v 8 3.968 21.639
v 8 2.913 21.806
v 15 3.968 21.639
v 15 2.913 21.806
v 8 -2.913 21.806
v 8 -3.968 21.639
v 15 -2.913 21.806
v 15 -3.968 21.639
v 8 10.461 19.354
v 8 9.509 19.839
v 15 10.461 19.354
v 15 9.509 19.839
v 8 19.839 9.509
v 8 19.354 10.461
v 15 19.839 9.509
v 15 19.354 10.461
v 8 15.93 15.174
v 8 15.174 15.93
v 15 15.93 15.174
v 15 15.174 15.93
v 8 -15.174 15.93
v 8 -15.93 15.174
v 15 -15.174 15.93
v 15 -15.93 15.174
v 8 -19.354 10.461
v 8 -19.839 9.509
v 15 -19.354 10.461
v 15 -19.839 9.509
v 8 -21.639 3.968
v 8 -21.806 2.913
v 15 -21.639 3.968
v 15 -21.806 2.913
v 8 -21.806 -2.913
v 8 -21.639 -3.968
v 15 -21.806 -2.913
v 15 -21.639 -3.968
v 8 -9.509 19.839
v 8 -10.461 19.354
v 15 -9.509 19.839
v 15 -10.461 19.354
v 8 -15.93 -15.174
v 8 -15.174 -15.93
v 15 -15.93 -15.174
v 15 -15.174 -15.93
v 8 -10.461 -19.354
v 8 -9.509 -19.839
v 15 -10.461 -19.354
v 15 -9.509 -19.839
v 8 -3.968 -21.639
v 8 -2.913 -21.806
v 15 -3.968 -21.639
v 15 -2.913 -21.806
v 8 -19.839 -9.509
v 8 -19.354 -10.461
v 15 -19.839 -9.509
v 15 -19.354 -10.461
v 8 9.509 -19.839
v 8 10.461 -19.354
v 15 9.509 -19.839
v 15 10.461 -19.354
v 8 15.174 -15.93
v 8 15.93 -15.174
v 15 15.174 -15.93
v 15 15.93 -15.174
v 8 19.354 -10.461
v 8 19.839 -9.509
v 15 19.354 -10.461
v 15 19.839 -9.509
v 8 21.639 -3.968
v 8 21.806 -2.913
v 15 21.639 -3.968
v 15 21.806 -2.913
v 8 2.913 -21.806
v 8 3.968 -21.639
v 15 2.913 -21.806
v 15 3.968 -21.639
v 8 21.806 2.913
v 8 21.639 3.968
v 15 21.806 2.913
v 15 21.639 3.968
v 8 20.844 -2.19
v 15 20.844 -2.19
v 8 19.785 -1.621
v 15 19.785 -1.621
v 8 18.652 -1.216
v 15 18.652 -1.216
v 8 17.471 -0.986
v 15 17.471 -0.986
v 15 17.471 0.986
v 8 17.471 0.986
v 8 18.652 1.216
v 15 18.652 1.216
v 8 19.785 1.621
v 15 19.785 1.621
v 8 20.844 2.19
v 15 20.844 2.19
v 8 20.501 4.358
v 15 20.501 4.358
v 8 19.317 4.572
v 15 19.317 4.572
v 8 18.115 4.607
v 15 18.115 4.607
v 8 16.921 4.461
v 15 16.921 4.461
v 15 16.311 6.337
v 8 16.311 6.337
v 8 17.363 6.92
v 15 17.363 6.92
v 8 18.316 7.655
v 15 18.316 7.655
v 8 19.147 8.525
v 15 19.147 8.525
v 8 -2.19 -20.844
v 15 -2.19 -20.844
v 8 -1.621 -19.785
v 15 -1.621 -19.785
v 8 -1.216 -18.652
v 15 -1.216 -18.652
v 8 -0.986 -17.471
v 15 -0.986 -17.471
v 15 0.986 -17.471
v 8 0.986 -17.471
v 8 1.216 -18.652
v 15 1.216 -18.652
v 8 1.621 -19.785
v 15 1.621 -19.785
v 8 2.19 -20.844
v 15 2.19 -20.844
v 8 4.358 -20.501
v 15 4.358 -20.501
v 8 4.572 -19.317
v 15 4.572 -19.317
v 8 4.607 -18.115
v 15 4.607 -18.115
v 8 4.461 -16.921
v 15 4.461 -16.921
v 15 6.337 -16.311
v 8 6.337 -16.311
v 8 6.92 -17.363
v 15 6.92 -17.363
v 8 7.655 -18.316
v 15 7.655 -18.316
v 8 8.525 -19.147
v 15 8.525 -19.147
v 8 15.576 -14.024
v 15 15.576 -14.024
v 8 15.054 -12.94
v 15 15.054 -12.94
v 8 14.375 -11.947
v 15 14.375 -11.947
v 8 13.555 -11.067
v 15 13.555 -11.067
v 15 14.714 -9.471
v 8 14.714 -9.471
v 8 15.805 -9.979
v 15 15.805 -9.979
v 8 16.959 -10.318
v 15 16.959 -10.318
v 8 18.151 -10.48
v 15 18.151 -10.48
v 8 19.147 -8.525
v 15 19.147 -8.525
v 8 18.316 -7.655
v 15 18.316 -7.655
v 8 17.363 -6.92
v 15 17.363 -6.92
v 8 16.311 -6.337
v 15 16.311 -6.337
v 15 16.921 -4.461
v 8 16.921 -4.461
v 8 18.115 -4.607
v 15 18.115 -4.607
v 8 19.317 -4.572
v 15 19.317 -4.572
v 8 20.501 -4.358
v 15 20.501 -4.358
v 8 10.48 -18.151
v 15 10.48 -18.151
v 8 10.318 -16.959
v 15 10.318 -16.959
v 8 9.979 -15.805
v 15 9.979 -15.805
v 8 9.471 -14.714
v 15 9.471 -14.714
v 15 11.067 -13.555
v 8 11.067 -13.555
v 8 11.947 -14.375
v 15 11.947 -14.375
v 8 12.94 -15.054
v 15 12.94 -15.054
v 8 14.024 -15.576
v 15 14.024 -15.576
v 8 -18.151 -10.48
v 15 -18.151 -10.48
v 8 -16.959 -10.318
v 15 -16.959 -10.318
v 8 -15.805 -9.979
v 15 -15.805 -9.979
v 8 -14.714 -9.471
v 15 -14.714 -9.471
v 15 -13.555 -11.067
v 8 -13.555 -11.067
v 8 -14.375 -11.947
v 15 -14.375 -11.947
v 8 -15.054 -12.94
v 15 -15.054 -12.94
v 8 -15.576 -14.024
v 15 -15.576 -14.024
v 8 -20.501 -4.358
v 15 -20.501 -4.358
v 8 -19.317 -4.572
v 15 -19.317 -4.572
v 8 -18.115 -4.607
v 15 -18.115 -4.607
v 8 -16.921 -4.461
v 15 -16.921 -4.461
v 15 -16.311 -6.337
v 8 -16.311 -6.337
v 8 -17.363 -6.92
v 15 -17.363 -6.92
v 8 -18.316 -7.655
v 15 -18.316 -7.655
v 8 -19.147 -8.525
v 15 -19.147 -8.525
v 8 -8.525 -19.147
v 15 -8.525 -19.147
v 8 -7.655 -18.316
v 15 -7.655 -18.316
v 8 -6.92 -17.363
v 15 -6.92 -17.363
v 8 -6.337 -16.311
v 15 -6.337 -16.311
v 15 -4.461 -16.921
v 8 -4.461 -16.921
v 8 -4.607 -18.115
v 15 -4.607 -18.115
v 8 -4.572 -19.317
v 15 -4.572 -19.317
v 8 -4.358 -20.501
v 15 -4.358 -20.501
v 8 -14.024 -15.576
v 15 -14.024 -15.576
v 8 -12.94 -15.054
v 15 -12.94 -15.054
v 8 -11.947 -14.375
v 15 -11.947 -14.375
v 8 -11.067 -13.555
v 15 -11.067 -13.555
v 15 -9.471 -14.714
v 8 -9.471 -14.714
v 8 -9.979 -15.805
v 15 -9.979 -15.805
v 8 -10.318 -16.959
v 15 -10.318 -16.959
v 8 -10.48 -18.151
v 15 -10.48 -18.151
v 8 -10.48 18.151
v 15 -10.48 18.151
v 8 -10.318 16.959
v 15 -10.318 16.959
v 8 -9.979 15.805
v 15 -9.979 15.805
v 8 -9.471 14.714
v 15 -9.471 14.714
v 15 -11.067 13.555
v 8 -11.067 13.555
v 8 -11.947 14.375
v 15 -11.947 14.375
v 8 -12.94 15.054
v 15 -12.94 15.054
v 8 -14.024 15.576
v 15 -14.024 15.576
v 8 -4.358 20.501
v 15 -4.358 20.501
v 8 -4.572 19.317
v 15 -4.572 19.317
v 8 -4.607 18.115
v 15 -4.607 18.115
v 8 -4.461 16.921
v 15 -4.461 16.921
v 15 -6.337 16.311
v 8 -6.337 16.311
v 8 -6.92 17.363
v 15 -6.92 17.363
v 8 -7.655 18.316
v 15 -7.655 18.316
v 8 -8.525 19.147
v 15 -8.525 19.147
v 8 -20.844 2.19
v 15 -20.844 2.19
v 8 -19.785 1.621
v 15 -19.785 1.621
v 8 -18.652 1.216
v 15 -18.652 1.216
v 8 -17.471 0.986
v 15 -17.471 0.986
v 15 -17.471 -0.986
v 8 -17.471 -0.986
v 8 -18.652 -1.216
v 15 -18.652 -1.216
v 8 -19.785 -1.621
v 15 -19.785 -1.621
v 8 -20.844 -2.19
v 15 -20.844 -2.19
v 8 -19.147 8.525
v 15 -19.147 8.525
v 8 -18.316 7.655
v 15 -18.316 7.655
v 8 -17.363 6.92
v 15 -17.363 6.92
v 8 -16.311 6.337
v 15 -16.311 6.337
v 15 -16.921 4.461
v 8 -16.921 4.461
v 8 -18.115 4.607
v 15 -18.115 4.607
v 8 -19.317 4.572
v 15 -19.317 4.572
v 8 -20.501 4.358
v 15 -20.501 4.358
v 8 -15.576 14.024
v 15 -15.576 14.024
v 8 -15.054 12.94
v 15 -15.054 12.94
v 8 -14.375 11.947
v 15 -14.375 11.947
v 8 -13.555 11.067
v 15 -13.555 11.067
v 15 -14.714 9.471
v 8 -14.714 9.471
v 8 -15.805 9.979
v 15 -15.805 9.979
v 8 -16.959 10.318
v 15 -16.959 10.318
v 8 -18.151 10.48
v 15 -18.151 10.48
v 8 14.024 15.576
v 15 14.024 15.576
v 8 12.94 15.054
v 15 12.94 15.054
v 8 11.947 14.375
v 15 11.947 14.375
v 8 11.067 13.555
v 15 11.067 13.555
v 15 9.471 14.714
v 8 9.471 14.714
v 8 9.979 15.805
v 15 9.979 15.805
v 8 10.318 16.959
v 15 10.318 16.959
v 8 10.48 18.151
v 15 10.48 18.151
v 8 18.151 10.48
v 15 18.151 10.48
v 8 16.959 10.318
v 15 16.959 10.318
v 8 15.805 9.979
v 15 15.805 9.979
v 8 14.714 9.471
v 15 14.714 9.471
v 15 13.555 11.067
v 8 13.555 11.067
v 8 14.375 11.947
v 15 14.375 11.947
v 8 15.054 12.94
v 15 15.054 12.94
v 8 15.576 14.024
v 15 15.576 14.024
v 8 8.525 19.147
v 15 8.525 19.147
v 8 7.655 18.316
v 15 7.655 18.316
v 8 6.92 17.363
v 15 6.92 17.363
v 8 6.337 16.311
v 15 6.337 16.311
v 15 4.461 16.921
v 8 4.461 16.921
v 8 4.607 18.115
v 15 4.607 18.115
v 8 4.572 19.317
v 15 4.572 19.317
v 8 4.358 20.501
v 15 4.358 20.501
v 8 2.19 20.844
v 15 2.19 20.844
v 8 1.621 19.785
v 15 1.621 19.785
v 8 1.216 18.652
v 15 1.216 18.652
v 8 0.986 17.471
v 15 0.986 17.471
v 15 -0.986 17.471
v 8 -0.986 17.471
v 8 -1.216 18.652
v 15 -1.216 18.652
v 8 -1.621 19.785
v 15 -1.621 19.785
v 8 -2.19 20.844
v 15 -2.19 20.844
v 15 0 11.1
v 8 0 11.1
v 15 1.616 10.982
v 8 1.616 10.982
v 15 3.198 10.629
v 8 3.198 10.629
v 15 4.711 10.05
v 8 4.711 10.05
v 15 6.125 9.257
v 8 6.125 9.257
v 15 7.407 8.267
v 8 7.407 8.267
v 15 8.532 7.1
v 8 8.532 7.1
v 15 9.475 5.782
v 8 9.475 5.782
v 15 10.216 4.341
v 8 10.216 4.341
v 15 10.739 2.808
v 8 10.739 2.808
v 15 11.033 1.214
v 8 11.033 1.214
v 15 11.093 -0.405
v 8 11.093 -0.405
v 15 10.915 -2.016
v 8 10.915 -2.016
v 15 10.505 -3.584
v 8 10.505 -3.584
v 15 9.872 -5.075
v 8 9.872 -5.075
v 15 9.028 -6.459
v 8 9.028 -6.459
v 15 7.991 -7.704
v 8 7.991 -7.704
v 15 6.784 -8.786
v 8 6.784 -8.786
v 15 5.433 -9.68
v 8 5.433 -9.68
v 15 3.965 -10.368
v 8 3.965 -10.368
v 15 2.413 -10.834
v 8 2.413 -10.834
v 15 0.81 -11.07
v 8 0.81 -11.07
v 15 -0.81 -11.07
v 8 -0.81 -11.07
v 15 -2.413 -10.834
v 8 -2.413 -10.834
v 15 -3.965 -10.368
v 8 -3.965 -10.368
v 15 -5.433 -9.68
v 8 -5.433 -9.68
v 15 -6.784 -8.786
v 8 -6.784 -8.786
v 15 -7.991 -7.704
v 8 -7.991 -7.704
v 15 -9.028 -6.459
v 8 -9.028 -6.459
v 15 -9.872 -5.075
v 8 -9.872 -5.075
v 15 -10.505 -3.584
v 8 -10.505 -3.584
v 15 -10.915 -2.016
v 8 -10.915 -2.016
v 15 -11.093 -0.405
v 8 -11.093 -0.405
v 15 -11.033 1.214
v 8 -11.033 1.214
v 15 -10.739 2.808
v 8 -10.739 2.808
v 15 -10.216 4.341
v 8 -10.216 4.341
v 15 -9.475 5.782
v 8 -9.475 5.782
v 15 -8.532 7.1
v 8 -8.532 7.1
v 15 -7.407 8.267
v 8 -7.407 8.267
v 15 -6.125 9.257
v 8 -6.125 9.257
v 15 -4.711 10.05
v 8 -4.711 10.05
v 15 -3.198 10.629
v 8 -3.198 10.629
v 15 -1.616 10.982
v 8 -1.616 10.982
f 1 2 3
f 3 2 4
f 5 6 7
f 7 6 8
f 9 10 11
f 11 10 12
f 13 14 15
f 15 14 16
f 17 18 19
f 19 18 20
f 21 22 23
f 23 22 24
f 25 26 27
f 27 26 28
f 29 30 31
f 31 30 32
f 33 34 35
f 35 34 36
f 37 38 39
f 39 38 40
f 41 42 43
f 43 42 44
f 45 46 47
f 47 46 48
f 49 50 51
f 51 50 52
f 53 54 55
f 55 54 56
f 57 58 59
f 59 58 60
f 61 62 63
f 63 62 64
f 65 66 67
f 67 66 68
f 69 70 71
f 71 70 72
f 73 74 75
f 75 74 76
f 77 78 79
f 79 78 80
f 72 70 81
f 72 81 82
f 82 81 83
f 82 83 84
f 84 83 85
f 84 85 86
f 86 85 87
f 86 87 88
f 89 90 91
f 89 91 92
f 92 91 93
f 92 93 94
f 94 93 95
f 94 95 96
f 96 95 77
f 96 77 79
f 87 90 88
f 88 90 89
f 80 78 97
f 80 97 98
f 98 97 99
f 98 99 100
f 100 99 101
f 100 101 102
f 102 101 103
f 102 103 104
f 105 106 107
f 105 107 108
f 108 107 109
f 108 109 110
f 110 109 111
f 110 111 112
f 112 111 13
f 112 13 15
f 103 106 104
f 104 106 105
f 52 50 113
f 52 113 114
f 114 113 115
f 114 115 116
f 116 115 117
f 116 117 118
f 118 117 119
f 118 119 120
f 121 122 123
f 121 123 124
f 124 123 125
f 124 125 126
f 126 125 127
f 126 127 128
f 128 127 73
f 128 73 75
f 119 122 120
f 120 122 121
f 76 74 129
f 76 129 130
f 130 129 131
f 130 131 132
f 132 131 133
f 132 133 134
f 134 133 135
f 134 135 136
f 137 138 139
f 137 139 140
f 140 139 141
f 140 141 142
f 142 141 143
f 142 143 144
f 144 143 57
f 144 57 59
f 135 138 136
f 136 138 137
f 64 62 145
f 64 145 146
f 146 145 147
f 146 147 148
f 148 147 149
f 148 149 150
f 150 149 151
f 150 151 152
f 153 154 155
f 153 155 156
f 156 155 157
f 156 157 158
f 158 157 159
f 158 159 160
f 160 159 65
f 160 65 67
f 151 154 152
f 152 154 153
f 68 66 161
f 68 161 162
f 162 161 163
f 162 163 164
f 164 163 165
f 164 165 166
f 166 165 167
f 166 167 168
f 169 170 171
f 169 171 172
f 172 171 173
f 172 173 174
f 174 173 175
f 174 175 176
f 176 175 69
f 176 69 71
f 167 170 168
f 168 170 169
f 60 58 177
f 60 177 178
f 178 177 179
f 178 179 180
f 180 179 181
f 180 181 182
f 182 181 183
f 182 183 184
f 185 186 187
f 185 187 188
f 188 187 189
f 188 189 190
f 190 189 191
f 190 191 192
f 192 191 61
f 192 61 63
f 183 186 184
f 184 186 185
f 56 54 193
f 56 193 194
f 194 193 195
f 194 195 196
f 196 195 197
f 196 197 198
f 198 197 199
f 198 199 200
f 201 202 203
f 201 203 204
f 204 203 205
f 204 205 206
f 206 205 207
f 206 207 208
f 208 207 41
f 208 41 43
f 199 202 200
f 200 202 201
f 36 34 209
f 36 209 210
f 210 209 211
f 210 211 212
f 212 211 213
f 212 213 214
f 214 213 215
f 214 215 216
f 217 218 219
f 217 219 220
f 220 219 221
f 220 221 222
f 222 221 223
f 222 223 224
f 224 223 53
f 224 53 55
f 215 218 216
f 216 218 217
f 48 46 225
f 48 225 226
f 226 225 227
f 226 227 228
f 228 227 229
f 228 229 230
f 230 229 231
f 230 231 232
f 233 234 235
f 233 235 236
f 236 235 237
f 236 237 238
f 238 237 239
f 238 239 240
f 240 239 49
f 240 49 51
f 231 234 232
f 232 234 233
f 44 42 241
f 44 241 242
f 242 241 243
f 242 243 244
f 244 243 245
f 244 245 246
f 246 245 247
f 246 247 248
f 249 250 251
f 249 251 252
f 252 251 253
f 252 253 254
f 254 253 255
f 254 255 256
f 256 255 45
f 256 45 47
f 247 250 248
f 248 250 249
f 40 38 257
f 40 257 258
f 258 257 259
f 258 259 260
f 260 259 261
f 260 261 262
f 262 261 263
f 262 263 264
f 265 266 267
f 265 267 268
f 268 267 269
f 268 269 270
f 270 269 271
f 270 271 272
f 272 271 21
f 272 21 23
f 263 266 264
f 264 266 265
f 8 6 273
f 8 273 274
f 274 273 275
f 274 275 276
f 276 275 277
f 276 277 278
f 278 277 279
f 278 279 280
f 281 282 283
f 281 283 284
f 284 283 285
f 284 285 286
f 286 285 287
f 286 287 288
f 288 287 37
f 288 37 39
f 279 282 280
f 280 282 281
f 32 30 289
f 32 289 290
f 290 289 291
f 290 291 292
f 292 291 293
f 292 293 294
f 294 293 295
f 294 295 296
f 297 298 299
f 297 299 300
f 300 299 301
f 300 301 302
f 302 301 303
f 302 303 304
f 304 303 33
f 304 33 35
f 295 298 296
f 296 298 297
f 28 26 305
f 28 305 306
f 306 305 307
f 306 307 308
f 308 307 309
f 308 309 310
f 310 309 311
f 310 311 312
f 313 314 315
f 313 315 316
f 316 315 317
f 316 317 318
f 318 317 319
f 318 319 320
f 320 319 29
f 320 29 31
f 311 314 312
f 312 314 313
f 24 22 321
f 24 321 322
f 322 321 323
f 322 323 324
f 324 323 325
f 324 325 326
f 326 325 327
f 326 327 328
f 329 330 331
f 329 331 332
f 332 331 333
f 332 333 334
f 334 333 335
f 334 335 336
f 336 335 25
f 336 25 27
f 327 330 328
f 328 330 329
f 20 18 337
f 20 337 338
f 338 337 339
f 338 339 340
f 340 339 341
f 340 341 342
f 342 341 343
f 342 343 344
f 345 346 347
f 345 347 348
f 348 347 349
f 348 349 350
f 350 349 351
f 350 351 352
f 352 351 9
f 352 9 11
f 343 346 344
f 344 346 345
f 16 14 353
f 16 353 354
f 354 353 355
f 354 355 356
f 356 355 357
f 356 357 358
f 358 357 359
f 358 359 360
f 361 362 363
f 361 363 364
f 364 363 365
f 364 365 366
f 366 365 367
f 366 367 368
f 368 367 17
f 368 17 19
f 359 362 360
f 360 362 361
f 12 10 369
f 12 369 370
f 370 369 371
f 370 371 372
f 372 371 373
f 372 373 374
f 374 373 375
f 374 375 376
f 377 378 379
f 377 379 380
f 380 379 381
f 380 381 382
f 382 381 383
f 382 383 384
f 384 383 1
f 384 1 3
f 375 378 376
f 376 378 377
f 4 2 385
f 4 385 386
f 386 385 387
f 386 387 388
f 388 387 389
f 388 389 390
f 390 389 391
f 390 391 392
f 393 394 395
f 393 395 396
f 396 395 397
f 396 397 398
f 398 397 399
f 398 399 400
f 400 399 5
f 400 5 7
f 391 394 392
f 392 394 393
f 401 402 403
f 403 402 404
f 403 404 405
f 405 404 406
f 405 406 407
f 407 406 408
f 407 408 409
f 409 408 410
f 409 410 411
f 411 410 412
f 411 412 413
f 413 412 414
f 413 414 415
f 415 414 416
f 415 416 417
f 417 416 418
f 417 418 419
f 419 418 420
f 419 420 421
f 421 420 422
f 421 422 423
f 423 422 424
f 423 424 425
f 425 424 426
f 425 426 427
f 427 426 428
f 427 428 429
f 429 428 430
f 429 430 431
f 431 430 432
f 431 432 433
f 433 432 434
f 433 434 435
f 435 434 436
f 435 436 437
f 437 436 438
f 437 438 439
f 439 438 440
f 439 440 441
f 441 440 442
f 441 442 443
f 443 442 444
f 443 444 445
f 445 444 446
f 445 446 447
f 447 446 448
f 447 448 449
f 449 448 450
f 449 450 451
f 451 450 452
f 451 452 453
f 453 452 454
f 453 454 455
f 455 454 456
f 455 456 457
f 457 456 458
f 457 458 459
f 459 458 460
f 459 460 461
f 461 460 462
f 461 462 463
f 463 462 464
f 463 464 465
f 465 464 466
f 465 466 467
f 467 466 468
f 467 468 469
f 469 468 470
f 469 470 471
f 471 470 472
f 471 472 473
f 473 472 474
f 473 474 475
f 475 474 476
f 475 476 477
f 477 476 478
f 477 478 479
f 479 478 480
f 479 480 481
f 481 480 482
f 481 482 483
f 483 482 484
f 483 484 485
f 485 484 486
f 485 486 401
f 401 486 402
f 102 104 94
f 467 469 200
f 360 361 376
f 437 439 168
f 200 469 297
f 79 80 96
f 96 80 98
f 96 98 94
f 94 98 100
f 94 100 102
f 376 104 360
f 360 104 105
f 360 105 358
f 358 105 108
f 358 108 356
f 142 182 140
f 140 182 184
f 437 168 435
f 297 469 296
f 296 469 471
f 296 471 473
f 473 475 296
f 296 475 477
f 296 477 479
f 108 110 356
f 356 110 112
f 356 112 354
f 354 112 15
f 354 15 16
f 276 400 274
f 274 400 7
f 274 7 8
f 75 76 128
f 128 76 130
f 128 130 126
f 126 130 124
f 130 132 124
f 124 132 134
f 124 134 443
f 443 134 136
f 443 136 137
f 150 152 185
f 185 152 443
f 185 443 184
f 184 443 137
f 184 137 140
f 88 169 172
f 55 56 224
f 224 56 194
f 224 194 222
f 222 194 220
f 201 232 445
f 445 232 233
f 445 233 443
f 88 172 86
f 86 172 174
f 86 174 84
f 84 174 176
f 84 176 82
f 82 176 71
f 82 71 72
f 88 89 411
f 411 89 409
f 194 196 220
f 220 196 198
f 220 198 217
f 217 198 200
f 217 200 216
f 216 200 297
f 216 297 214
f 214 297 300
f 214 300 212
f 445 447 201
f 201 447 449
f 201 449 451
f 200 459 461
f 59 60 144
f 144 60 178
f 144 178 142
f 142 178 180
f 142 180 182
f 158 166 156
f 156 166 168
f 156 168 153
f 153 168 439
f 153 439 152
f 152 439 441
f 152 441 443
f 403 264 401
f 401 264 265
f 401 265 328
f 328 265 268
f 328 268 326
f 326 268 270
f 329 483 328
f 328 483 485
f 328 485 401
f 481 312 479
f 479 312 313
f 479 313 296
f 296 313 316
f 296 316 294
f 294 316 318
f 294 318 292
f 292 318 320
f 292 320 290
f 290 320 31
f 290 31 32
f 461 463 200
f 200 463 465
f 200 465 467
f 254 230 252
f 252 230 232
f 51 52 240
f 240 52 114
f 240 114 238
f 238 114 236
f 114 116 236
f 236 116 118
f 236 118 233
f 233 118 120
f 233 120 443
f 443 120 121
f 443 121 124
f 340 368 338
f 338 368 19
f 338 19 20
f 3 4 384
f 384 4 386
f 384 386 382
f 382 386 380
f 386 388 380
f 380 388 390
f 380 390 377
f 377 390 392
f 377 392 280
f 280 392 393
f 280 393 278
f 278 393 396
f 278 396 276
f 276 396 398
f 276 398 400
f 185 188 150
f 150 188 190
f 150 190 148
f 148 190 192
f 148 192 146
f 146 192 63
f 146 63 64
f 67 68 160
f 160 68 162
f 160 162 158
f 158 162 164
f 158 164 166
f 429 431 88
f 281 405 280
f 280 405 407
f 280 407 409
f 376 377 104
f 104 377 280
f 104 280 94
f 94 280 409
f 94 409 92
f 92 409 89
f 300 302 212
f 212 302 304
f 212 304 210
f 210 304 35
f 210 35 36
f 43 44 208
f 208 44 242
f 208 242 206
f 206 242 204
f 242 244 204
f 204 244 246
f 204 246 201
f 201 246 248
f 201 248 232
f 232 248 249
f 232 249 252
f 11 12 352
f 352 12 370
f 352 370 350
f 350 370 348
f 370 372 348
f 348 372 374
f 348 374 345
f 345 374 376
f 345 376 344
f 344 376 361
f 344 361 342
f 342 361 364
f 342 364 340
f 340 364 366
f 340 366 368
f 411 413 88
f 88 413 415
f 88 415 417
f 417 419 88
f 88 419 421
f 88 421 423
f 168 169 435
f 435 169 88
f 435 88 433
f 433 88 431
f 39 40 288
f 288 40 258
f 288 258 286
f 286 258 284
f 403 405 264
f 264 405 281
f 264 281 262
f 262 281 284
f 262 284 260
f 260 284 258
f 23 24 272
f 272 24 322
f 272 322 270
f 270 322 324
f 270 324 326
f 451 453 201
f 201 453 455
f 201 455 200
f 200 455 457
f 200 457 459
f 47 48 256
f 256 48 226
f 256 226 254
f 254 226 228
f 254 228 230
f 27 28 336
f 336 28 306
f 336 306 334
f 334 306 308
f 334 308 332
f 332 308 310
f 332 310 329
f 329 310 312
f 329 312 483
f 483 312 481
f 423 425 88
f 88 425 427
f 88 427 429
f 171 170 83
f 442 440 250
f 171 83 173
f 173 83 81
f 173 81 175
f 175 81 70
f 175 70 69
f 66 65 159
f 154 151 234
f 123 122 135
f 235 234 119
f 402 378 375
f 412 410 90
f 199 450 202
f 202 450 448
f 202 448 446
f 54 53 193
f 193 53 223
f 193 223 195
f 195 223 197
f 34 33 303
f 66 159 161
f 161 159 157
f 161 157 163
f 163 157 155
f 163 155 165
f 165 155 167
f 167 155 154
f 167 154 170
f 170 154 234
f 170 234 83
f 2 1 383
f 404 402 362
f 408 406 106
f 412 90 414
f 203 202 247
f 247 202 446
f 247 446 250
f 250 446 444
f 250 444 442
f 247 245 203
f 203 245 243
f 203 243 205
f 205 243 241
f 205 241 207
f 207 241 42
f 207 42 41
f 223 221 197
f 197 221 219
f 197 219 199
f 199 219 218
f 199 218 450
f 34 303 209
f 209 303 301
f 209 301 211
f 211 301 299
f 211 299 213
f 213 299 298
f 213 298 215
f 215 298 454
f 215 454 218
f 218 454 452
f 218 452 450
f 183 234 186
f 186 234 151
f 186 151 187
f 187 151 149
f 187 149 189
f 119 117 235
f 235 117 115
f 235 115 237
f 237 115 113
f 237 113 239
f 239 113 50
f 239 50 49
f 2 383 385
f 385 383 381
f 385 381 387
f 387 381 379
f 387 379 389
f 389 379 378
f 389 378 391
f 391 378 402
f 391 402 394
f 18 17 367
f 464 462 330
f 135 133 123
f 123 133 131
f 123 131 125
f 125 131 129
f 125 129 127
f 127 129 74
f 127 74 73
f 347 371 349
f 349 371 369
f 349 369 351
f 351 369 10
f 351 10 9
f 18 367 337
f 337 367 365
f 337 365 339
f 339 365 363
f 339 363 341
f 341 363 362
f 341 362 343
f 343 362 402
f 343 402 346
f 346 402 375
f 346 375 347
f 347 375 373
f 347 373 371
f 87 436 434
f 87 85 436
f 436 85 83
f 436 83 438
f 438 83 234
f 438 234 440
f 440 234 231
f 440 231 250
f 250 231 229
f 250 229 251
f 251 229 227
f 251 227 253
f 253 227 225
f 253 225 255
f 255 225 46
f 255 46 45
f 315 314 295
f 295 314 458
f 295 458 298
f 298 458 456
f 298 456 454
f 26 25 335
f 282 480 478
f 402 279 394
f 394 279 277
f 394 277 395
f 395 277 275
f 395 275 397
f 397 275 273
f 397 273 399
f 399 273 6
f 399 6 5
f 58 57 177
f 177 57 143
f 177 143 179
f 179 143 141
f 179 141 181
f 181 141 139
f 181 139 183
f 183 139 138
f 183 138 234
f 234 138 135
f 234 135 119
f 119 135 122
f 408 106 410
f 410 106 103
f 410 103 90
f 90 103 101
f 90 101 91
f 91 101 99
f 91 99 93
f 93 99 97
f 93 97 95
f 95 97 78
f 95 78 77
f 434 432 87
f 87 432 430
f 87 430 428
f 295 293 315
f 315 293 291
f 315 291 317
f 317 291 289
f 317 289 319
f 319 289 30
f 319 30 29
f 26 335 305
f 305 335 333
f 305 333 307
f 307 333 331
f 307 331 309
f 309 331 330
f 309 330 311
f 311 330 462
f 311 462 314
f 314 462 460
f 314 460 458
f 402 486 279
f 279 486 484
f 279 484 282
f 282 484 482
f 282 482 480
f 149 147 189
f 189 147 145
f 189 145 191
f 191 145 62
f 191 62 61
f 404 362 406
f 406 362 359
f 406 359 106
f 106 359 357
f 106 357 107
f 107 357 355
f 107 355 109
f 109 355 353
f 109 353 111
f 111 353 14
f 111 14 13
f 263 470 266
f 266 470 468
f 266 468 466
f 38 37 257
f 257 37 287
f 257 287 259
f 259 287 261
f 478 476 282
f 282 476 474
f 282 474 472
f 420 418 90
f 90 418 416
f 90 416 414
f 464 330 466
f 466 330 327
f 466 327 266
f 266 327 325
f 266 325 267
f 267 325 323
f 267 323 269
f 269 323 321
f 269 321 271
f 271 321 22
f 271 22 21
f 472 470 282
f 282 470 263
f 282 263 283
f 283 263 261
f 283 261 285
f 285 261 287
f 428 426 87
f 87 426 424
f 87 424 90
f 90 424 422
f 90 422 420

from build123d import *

# Parameters (mm, degrees)
BASPROSKE_W        = 15
BASPROSKE_H        = 22
TOOTHCUT_DEPTH     = 35.539832078
TEETHCUTS_COUNT    = 20
TEETHCUTS_ANGLE    = 342
BORSKE_R           = 0.5
BORE_DEPTH         = 50.0000508
SKETCH1_R          = 11.1
CUT_EXTRUDE1_DEPTH = 16
CUT_EXTRUDE2_DEPTH = 8


with BuildPart() as part:
    # BasProSke → Base-Revolve (revolve)
    with BuildSketch(Plane(origin=(0, 0, 0), x_dir=(1, 0, 0), z_dir=(0, 1, 0)), mode=Mode.PRIVATE) as base_revolve_sk:
        with Locations((7.5, 11)):
            Rectangle(BASPROSKE_W, BASPROSKE_H)
    revolve(base_revolve_sk.sketch.rotate(Axis((-10, 0, 0), (1, 0, 0)), 180), axis=Axis((-10, 0, 0), (1, 0, 0)))

    # TooCutSke → ToothCut (cut, through all)
    with BuildSketch(Plane(origin=(0, 0, 0), x_dir=(0, 0, -1), z_dir=(1, 0, 0))):
        with BuildLine():
            ThreePointArc((0.986171591, 17.471189616), (0, 17.499), (-0.986171591, 17.471189616))
            ThreePointArc((-0.986171591, 17.471189616), (-1.626916196, 19.798789858), (-2.932850173, 21.829260982))
            ThreePointArc((-2.932850173, 21.829260982), (0, 22.0254), (2.932850173, 21.829260982))
            ThreePointArc((2.932850173, 21.829260982), (1.626916196, 19.798789858), (0.986171591, 17.471189616))
        make_face()
    toothcut = extrude(amount=TOOTHCUT_DEPTH, mode=Mode.SUBTRACT)

    # TeethCuts: ToothCut ×20 about axis
    teethcuts_axis = Axis((-10, 0, 0), (1, 0, 0))
    for i in range(1, TEETHCUTS_COUNT):
        add(toothcut.rotate(teethcuts_axis, i * TEETHCUTS_ANGLE / (TEETHCUTS_COUNT - 1)), mode=Mode.SUBTRACT)

    # BorSke → Bore (cut, symmetric)
    with BuildSketch(Plane(origin=(0, 0, 0), x_dir=(0, 0, -1), z_dir=(1, 0, 0))):
        with Locations(Location((0, 0, 0), (0, 0, 180))):
            Circle(BORSKE_R)
    extrude(amount=BORE_DEPTH, both=True, mode=Mode.SUBTRACT)

    # Sketch1 → Cut-Extrude1 (cut)
    with BuildSketch(Plane.ZY):
        Circle(SKETCH1_R)
    extrude(amount=-CUT_EXTRUDE1_DEPTH, mode=Mode.SUBTRACT)

    # Sketch2 → Cut-Extrude2 (cut)
    with BuildSketch(Plane.ZY):
        with BuildLine():
            ThreePointArc((17.471189616, 0.986171591), (19.784848102, 1.620704589), (21.806333941, 2.912696354))
            ThreePointArc((21.806333941, 2.912696354), (21.729143493, 3.441558231), (21.639128664, 3.968388926))
            ThreePointArc((21.639128664, 3.968388926), (19.317333972, 4.572472634), (16.920832513, 4.460989585))
            ThreePointArc((16.920832513, 4.460989585), (16.642537979, 5.407488385), (16.31134495, 6.336799421))
            ThreePointArc((16.31134495, 6.336799421), (18.31568345, 7.655235955), (19.838983319, 9.50866662))
            ThreePointArc((19.838983319, 9.50866662), (19.602143532, 9.987790994), (19.353734704, 10.461020648))
            ThreePointArc((19.353734704, 10.461020648), (16.958904602, 10.318064378), (14.714146429, 9.471478019))
            ThreePointArc((14.714146429, 9.471478019), (14.156988385, 10.28565413), (13.554832194, 11.067137173))
            ThreePointArc((13.554832194, 11.067137173), (15.05365209, 12.940419489), (15.929654782, 15.173862347))
            ThreePointArc((15.929654782, 15.173862347), (15.556349186, 15.556349186), (15.173862347, 15.929654782))
            ThreePointArc((15.173862347, 15.929654782), (12.940419489, 15.05365209), (11.067137173, 13.554832194))
            ThreePointArc((11.067137173, 13.554832194), (10.28565413, 14.156988385), (9.471478019, 14.714146429))
            ThreePointArc((9.471478019, 14.714146429), (10.318064378, 16.958904602), (10.461020648, 19.353734704))
            ThreePointArc((10.461020648, 19.353734704), (9.987790994, 19.602143532), (9.50866662, 19.838983319))
            ThreePointArc((9.50866662, 19.838983319), (7.655235955, 18.31568345), (6.336799421, 16.31134495))
            ThreePointArc((6.336799421, 16.31134495), (5.407488385, 16.642537979), (4.460989585, 16.920832513))
            ThreePointArc((4.460989585, 16.920832513), (4.572472634, 19.317333972), (3.968388926, 21.639128664))
            ThreePointArc((3.968388926, 21.639128664), (3.441558231, 21.729143493), (2.912696354, 21.806333941))
            ThreePointArc((2.912696354, 21.806333941), (1.620704589, 19.784848102), (0.986171591, 17.471189616))
            ThreePointArc((0.986171591, 17.471189616), (0, 17.499), (-0.986171591, 17.471189616))
            ThreePointArc((-0.986171591, 17.471189616), (-1.620704589, 19.784848102), (-2.912696354, 21.806333941))
            ThreePointArc((-2.912696354, 21.806333941), (-3.441558231, 21.729143493), (-3.968388926, 21.639128664))
            ThreePointArc((-3.968388926, 21.639128664), (-4.572472634, 19.317333972), (-4.460989585, 16.920832513))
            ThreePointArc((-4.460989585, 16.920832513), (-5.407488385, 16.642537979), (-6.336799421, 16.31134495))
            ThreePointArc((-6.336799421, 16.31134495), (-7.655235955, 18.31568345), (-9.50866662, 19.838983319))
            ThreePointArc((-9.50866662, 19.838983319), (-9.987790994, 19.602143532), (-10.461020648, 19.353734704))
            ThreePointArc((-10.461020648, 19.353734704), (-10.318064378, 16.958904602), (-9.471478019, 14.714146429))
            ThreePointArc((-9.471478019, 14.714146429), (-10.28565413, 14.156988385), (-11.067137173, 13.554832194))
            ThreePointArc((-11.067137173, 13.554832194), (-12.940419489, 15.05365209), (-15.173862347, 15.929654782))
            ThreePointArc((-15.173862347, 15.929654782), (-15.556349186, 15.556349186), (-15.929654782, 15.173862347))
            ThreePointArc((-15.929654782, 15.173862347), (-15.05365209, 12.940419489), (-13.554832194, 11.067137173))
            ThreePointArc((-13.554832194, 11.067137173), (-14.156988385, 10.28565413), (-14.714146429, 9.471478019))
            ThreePointArc((-14.714146429, 9.471478019), (-16.958904602, 10.318064378), (-19.353734704, 10.461020648))
            ThreePointArc((-19.353734704, 10.461020648), (-19.602143532, 9.987790994), (-19.838983319, 9.50866662))
            ThreePointArc((-19.838983319, 9.50866662), (-18.31568345, 7.655235955), (-16.31134495, 6.336799421))
            ThreePointArc((-16.31134495, 6.336799421), (-16.642537979, 5.407488385), (-16.920832513, 4.460989585))
            ThreePointArc((-16.920832513, 4.460989585), (-19.317333972, 4.572472634), (-21.639128664, 3.968388926))
            ThreePointArc((-21.639128664, 3.968388926), (-21.729143493, 3.441558231), (-21.806333941, 2.912696354))
            ThreePointArc((-21.806333941, 2.912696354), (-19.784848102, 1.620704589), (-17.471189616, 0.986171591))
            ThreePointArc((-17.471189616, 0.986171591), (-17.499, 0), (-17.471189616, -0.986171591))
            ThreePointArc((-17.471189616, -0.986171591), (-19.784848102, -1.620704589), (-21.806333941, -2.912696354))
            ThreePointArc((-21.806333941, -2.912696354), (-21.729143493, -3.441558231), (-21.639128664, -3.968388926))
            ThreePointArc((-21.639128664, -3.968388926), (-19.317333972, -4.572472634), (-16.920832513, -4.460989585))
            ThreePointArc((-16.920832513, -4.460989585), (-16.642537979, -5.407488385), (-16.31134495, -6.336799421))
            ThreePointArc((-16.31134495, -6.336799421), (-18.31568345, -7.655235955), (-19.838983319, -9.50866662))
            ThreePointArc((-19.838983319, -9.50866662), (-19.602143532, -9.987790994), (-19.353734704, -10.461020648))
            ThreePointArc((-19.353734704, -10.461020648), (-16.958904602, -10.318064378), (-14.714146429, -9.471478019))
            ThreePointArc((-14.714146429, -9.471478019), (-14.156988385, -10.28565413), (-13.554832194, -11.067137173))
            ThreePointArc((-13.554832194, -11.067137173), (-15.05365209, -12.940419489), (-15.929654782, -15.173862347))
            ThreePointArc((-15.929654782, -15.173862347), (-15.556349186, -15.556349186), (-15.173862347, -15.929654782))
            ThreePointArc((-15.173862347, -15.929654782), (-12.940419489, -15.05365209), (-11.067137173, -13.554832194))
            ThreePointArc((-11.067137173, -13.554832194), (-10.28565413, -14.156988385), (-9.471478019, -14.714146429))
            ThreePointArc((-9.471478019, -14.714146429), (-10.318064378, -16.958904602), (-10.461020648, -19.353734704))
            ThreePointArc((-10.461020648, -19.353734704), (-9.987790994, -19.602143532), (-9.50866662, -19.838983319))
            ThreePointArc((-9.50866662, -19.838983319), (-7.655235955, -18.31568345), (-6.336799421, -16.31134495))
            ThreePointArc((-6.336799421, -16.31134495), (-5.407488385, -16.642537979), (-4.460989585, -16.920832513))
            ThreePointArc((-4.460989585, -16.920832513), (-4.572472634, -19.317333972), (-3.968388926, -21.639128664))
            ThreePointArc((-3.968388926, -21.639128664), (-3.441558231, -21.729143493), (-2.912696354, -21.806333941))
            ThreePointArc((-2.912696354, -21.806333941), (-1.620704589, -19.784848102), (-0.986171591, -17.471189616))
            ThreePointArc((-0.986171591, -17.471189616), (0, -17.499), (0.986171591, -17.471189616))
            ThreePointArc((0.986171591, -17.471189616), (1.620704589, -19.784848102), (2.912696354, -21.806333941))
            ThreePointArc((2.912696354, -21.806333941), (3.441558231, -21.729143493), (3.968388926, -21.639128664))
            ThreePointArc((3.968388926, -21.639128664), (4.572472634, -19.317333972), (4.460989585, -16.920832513))
            ThreePointArc((4.460989585, -16.920832513), (5.407488385, -16.642537979), (6.336799421, -16.31134495))
            ThreePointArc((6.336799421, -16.31134495), (7.655235955, -18.31568345), (9.50866662, -19.838983319))
            ThreePointArc((9.50866662, -19.838983319), (9.987790994, -19.602143532), (10.461020648, -19.353734704))
            ThreePointArc((10.461020648, -19.353734704), (10.318064378, -16.958904602), (9.471478019, -14.714146429))
            ThreePointArc((9.471478019, -14.714146429), (10.28565413, -14.156988385), (11.067137173, -13.554832194))
            ThreePointArc((11.067137173, -13.554832194), (12.940419489, -15.05365209), (15.173862347, -15.929654782))
            ThreePointArc((15.173862347, -15.929654782), (15.556349186, -15.556349186), (15.929654782, -15.173862347))
            ThreePointArc((15.929654782, -15.173862347), (15.05365209, -12.940419489), (13.554832194, -11.067137173))
            ThreePointArc((13.554832194, -11.067137173), (14.156988385, -10.28565413), (14.714146429, -9.471478019))
            ThreePointArc((14.714146429, -9.471478019), (16.958904602, -10.318064378), (19.353734704, -10.461020648))
            ThreePointArc((19.353734704, -10.461020648), (19.602143532, -9.987790994), (19.838983319, -9.50866662))
            ThreePointArc((19.838983319, -9.50866662), (18.31568345, -7.655235955), (16.31134495, -6.336799421))
            ThreePointArc((16.31134495, -6.336799421), (16.642537979, -5.407488385), (16.920832513, -4.460989585))
            ThreePointArc((16.920832513, -4.460989585), (19.317333972, -4.572472634), (21.639128664, -3.968388926))
            ThreePointArc((21.639128664, -3.968388926), (21.729143493, -3.441558231), (21.806333941, -2.912696354))
            ThreePointArc((21.806333941, -2.912696354), (19.784848102, -1.620704589), (17.471189616, -0.986171591))
            ThreePointArc((17.471189616, -0.986171591), (17.499, 0), (17.471189616, 0.986171591))
        make_face()
    extrude(amount=-CUT_EXTRUDE2_DEPTH, mode=Mode.SUBTRACT)


solid = part.part
